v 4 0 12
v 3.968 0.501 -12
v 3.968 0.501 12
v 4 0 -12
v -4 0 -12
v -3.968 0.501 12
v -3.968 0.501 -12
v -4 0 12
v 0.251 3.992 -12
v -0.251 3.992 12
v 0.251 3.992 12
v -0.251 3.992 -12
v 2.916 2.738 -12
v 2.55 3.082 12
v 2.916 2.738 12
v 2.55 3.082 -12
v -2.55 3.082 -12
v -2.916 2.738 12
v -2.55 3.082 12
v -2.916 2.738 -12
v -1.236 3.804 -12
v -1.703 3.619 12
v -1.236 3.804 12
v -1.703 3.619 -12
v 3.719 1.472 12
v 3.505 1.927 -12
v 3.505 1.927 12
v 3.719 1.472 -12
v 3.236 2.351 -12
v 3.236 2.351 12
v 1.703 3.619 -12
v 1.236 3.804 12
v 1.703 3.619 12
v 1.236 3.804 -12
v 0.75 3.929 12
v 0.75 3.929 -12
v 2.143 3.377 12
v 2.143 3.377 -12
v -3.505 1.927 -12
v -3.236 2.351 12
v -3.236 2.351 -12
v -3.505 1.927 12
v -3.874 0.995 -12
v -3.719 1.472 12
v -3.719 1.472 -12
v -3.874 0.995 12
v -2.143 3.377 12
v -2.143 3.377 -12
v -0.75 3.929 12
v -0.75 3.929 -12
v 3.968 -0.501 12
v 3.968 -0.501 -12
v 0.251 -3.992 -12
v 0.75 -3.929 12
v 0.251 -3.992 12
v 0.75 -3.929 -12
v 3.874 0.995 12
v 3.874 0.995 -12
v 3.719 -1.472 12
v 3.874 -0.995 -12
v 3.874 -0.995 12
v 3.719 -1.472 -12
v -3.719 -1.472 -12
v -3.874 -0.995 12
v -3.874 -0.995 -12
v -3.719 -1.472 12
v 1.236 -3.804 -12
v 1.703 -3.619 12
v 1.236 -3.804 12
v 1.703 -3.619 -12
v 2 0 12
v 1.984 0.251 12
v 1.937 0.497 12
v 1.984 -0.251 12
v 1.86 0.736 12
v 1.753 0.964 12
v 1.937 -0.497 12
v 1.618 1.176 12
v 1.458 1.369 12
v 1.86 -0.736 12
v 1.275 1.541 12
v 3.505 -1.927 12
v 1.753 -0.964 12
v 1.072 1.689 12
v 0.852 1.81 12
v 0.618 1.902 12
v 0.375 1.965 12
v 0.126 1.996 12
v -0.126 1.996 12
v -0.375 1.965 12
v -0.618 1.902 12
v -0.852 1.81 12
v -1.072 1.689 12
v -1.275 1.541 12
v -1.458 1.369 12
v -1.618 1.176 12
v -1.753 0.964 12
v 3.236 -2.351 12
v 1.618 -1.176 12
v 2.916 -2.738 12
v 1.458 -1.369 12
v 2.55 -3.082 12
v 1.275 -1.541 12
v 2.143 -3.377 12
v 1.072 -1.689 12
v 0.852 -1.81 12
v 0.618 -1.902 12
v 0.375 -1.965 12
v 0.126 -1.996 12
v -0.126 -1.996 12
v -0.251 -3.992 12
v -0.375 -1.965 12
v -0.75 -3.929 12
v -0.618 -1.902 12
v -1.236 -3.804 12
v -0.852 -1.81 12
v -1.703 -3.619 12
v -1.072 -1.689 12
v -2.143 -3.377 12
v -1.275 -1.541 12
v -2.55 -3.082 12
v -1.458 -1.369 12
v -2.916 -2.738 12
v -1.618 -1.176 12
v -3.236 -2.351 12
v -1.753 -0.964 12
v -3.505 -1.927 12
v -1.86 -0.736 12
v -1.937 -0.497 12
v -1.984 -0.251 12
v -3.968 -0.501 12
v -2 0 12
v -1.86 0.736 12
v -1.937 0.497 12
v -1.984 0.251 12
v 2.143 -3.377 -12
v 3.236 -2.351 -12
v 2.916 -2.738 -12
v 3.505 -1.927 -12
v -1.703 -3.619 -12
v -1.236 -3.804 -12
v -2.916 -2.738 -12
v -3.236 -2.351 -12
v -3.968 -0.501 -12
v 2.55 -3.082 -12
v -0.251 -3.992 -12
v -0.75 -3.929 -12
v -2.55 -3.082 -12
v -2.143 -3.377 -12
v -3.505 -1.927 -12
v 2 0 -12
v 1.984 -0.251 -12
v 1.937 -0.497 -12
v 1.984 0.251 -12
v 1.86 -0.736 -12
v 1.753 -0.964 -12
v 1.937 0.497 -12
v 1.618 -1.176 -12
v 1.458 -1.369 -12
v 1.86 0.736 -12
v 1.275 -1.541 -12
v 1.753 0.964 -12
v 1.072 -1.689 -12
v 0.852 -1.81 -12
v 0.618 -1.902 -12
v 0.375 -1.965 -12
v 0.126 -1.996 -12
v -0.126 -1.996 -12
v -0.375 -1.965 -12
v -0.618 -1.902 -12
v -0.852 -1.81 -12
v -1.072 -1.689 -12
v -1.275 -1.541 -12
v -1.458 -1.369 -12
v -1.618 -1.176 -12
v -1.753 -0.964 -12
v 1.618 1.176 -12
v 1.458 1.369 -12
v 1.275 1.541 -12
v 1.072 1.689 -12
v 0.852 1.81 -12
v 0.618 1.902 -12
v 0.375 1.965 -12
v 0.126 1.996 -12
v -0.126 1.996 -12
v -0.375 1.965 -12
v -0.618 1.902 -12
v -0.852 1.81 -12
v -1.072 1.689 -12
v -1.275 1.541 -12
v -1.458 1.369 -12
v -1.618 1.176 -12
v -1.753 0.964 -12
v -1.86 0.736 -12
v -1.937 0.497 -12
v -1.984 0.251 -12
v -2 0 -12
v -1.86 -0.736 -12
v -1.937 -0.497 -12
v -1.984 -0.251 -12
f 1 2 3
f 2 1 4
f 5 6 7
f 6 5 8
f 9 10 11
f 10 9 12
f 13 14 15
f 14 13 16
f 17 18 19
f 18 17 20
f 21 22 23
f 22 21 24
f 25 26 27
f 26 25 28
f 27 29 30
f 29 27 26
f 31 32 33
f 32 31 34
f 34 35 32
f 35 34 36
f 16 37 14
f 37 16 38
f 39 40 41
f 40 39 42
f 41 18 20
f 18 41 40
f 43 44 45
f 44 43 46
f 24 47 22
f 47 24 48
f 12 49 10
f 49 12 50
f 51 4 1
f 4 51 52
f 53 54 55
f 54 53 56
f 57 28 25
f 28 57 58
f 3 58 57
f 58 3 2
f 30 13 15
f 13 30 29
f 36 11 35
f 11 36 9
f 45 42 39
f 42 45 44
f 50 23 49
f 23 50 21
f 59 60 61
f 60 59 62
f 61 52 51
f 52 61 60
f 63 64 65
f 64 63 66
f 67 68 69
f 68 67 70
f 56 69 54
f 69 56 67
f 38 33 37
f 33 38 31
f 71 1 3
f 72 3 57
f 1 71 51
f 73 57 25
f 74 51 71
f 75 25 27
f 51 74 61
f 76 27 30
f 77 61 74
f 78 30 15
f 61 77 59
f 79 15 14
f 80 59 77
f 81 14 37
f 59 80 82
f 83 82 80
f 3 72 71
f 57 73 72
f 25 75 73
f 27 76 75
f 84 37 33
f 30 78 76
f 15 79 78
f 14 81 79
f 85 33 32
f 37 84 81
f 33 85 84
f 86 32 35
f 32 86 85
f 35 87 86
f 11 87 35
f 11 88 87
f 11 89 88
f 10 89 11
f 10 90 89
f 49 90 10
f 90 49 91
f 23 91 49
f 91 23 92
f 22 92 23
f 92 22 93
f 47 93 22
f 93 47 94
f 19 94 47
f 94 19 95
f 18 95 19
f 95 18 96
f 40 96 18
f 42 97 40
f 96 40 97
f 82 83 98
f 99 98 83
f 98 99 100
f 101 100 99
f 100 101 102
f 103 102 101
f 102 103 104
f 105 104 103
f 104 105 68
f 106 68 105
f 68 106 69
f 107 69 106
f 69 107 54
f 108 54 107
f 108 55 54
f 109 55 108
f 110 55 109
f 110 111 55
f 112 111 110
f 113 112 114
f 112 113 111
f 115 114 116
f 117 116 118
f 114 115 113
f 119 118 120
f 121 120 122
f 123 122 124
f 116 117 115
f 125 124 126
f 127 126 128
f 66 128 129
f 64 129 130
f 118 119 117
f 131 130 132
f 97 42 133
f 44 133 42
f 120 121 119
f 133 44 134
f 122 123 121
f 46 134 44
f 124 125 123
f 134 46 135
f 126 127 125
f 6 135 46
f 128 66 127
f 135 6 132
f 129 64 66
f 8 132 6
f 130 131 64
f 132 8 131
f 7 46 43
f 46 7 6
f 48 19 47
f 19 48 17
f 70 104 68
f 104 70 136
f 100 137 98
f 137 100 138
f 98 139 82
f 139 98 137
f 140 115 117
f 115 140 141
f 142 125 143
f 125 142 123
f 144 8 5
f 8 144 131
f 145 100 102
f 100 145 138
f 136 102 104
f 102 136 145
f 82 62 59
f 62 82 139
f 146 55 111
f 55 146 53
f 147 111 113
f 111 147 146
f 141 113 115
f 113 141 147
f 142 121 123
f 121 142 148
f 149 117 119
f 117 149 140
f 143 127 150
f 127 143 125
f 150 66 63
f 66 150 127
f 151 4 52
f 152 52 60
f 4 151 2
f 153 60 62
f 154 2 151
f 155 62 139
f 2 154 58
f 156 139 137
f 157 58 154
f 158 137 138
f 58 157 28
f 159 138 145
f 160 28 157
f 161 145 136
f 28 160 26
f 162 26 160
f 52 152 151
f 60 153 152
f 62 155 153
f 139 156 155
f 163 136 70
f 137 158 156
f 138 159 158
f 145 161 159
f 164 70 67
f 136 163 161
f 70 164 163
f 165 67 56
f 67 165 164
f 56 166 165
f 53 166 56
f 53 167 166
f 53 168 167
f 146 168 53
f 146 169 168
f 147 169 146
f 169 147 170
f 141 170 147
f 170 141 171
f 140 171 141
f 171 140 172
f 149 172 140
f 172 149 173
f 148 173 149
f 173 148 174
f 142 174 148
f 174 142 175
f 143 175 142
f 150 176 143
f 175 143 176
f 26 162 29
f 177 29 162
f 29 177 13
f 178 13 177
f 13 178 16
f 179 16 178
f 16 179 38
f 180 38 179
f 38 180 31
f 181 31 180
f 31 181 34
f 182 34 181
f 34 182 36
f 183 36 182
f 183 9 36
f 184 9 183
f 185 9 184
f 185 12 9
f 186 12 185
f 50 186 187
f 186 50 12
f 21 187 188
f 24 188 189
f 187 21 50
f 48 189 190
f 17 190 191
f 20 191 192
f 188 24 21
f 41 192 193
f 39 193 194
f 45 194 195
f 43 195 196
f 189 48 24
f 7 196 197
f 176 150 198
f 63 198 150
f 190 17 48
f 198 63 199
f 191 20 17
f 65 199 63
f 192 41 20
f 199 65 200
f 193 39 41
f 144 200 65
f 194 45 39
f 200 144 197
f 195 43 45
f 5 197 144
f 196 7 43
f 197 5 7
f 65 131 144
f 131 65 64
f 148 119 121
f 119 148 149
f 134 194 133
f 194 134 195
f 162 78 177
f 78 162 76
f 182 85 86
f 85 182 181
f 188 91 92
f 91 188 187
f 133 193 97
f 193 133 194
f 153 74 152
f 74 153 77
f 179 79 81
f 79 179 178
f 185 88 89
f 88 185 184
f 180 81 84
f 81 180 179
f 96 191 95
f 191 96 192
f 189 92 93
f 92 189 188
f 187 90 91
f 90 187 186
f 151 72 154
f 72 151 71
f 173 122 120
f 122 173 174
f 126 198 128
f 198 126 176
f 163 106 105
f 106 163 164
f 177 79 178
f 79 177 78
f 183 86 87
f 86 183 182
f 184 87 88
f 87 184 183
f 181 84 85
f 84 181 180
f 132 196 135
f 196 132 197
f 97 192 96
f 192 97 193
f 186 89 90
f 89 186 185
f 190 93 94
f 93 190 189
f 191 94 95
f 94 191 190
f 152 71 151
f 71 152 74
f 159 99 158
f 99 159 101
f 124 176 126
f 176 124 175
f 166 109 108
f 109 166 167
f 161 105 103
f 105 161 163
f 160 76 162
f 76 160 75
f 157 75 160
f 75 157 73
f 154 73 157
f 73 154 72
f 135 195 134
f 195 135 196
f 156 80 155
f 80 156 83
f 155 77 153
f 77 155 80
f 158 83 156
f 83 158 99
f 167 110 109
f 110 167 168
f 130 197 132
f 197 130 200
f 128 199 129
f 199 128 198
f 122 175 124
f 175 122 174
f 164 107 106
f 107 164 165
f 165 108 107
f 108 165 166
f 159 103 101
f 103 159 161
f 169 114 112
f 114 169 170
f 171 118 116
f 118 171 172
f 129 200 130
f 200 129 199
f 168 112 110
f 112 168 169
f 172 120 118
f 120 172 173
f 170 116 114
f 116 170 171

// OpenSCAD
$fn = 50;


difference() {
	union() {
		translate(v = [0, 0, -12.0000000000]) {
			cylinder(h = 24, r = 4.0000000000);
		}
	}
	union() {
		translate(v = [0, 0, -100.0000000000]) {
			cylinder(h = 200, r = 2.0000000000);
		}
	}
}
